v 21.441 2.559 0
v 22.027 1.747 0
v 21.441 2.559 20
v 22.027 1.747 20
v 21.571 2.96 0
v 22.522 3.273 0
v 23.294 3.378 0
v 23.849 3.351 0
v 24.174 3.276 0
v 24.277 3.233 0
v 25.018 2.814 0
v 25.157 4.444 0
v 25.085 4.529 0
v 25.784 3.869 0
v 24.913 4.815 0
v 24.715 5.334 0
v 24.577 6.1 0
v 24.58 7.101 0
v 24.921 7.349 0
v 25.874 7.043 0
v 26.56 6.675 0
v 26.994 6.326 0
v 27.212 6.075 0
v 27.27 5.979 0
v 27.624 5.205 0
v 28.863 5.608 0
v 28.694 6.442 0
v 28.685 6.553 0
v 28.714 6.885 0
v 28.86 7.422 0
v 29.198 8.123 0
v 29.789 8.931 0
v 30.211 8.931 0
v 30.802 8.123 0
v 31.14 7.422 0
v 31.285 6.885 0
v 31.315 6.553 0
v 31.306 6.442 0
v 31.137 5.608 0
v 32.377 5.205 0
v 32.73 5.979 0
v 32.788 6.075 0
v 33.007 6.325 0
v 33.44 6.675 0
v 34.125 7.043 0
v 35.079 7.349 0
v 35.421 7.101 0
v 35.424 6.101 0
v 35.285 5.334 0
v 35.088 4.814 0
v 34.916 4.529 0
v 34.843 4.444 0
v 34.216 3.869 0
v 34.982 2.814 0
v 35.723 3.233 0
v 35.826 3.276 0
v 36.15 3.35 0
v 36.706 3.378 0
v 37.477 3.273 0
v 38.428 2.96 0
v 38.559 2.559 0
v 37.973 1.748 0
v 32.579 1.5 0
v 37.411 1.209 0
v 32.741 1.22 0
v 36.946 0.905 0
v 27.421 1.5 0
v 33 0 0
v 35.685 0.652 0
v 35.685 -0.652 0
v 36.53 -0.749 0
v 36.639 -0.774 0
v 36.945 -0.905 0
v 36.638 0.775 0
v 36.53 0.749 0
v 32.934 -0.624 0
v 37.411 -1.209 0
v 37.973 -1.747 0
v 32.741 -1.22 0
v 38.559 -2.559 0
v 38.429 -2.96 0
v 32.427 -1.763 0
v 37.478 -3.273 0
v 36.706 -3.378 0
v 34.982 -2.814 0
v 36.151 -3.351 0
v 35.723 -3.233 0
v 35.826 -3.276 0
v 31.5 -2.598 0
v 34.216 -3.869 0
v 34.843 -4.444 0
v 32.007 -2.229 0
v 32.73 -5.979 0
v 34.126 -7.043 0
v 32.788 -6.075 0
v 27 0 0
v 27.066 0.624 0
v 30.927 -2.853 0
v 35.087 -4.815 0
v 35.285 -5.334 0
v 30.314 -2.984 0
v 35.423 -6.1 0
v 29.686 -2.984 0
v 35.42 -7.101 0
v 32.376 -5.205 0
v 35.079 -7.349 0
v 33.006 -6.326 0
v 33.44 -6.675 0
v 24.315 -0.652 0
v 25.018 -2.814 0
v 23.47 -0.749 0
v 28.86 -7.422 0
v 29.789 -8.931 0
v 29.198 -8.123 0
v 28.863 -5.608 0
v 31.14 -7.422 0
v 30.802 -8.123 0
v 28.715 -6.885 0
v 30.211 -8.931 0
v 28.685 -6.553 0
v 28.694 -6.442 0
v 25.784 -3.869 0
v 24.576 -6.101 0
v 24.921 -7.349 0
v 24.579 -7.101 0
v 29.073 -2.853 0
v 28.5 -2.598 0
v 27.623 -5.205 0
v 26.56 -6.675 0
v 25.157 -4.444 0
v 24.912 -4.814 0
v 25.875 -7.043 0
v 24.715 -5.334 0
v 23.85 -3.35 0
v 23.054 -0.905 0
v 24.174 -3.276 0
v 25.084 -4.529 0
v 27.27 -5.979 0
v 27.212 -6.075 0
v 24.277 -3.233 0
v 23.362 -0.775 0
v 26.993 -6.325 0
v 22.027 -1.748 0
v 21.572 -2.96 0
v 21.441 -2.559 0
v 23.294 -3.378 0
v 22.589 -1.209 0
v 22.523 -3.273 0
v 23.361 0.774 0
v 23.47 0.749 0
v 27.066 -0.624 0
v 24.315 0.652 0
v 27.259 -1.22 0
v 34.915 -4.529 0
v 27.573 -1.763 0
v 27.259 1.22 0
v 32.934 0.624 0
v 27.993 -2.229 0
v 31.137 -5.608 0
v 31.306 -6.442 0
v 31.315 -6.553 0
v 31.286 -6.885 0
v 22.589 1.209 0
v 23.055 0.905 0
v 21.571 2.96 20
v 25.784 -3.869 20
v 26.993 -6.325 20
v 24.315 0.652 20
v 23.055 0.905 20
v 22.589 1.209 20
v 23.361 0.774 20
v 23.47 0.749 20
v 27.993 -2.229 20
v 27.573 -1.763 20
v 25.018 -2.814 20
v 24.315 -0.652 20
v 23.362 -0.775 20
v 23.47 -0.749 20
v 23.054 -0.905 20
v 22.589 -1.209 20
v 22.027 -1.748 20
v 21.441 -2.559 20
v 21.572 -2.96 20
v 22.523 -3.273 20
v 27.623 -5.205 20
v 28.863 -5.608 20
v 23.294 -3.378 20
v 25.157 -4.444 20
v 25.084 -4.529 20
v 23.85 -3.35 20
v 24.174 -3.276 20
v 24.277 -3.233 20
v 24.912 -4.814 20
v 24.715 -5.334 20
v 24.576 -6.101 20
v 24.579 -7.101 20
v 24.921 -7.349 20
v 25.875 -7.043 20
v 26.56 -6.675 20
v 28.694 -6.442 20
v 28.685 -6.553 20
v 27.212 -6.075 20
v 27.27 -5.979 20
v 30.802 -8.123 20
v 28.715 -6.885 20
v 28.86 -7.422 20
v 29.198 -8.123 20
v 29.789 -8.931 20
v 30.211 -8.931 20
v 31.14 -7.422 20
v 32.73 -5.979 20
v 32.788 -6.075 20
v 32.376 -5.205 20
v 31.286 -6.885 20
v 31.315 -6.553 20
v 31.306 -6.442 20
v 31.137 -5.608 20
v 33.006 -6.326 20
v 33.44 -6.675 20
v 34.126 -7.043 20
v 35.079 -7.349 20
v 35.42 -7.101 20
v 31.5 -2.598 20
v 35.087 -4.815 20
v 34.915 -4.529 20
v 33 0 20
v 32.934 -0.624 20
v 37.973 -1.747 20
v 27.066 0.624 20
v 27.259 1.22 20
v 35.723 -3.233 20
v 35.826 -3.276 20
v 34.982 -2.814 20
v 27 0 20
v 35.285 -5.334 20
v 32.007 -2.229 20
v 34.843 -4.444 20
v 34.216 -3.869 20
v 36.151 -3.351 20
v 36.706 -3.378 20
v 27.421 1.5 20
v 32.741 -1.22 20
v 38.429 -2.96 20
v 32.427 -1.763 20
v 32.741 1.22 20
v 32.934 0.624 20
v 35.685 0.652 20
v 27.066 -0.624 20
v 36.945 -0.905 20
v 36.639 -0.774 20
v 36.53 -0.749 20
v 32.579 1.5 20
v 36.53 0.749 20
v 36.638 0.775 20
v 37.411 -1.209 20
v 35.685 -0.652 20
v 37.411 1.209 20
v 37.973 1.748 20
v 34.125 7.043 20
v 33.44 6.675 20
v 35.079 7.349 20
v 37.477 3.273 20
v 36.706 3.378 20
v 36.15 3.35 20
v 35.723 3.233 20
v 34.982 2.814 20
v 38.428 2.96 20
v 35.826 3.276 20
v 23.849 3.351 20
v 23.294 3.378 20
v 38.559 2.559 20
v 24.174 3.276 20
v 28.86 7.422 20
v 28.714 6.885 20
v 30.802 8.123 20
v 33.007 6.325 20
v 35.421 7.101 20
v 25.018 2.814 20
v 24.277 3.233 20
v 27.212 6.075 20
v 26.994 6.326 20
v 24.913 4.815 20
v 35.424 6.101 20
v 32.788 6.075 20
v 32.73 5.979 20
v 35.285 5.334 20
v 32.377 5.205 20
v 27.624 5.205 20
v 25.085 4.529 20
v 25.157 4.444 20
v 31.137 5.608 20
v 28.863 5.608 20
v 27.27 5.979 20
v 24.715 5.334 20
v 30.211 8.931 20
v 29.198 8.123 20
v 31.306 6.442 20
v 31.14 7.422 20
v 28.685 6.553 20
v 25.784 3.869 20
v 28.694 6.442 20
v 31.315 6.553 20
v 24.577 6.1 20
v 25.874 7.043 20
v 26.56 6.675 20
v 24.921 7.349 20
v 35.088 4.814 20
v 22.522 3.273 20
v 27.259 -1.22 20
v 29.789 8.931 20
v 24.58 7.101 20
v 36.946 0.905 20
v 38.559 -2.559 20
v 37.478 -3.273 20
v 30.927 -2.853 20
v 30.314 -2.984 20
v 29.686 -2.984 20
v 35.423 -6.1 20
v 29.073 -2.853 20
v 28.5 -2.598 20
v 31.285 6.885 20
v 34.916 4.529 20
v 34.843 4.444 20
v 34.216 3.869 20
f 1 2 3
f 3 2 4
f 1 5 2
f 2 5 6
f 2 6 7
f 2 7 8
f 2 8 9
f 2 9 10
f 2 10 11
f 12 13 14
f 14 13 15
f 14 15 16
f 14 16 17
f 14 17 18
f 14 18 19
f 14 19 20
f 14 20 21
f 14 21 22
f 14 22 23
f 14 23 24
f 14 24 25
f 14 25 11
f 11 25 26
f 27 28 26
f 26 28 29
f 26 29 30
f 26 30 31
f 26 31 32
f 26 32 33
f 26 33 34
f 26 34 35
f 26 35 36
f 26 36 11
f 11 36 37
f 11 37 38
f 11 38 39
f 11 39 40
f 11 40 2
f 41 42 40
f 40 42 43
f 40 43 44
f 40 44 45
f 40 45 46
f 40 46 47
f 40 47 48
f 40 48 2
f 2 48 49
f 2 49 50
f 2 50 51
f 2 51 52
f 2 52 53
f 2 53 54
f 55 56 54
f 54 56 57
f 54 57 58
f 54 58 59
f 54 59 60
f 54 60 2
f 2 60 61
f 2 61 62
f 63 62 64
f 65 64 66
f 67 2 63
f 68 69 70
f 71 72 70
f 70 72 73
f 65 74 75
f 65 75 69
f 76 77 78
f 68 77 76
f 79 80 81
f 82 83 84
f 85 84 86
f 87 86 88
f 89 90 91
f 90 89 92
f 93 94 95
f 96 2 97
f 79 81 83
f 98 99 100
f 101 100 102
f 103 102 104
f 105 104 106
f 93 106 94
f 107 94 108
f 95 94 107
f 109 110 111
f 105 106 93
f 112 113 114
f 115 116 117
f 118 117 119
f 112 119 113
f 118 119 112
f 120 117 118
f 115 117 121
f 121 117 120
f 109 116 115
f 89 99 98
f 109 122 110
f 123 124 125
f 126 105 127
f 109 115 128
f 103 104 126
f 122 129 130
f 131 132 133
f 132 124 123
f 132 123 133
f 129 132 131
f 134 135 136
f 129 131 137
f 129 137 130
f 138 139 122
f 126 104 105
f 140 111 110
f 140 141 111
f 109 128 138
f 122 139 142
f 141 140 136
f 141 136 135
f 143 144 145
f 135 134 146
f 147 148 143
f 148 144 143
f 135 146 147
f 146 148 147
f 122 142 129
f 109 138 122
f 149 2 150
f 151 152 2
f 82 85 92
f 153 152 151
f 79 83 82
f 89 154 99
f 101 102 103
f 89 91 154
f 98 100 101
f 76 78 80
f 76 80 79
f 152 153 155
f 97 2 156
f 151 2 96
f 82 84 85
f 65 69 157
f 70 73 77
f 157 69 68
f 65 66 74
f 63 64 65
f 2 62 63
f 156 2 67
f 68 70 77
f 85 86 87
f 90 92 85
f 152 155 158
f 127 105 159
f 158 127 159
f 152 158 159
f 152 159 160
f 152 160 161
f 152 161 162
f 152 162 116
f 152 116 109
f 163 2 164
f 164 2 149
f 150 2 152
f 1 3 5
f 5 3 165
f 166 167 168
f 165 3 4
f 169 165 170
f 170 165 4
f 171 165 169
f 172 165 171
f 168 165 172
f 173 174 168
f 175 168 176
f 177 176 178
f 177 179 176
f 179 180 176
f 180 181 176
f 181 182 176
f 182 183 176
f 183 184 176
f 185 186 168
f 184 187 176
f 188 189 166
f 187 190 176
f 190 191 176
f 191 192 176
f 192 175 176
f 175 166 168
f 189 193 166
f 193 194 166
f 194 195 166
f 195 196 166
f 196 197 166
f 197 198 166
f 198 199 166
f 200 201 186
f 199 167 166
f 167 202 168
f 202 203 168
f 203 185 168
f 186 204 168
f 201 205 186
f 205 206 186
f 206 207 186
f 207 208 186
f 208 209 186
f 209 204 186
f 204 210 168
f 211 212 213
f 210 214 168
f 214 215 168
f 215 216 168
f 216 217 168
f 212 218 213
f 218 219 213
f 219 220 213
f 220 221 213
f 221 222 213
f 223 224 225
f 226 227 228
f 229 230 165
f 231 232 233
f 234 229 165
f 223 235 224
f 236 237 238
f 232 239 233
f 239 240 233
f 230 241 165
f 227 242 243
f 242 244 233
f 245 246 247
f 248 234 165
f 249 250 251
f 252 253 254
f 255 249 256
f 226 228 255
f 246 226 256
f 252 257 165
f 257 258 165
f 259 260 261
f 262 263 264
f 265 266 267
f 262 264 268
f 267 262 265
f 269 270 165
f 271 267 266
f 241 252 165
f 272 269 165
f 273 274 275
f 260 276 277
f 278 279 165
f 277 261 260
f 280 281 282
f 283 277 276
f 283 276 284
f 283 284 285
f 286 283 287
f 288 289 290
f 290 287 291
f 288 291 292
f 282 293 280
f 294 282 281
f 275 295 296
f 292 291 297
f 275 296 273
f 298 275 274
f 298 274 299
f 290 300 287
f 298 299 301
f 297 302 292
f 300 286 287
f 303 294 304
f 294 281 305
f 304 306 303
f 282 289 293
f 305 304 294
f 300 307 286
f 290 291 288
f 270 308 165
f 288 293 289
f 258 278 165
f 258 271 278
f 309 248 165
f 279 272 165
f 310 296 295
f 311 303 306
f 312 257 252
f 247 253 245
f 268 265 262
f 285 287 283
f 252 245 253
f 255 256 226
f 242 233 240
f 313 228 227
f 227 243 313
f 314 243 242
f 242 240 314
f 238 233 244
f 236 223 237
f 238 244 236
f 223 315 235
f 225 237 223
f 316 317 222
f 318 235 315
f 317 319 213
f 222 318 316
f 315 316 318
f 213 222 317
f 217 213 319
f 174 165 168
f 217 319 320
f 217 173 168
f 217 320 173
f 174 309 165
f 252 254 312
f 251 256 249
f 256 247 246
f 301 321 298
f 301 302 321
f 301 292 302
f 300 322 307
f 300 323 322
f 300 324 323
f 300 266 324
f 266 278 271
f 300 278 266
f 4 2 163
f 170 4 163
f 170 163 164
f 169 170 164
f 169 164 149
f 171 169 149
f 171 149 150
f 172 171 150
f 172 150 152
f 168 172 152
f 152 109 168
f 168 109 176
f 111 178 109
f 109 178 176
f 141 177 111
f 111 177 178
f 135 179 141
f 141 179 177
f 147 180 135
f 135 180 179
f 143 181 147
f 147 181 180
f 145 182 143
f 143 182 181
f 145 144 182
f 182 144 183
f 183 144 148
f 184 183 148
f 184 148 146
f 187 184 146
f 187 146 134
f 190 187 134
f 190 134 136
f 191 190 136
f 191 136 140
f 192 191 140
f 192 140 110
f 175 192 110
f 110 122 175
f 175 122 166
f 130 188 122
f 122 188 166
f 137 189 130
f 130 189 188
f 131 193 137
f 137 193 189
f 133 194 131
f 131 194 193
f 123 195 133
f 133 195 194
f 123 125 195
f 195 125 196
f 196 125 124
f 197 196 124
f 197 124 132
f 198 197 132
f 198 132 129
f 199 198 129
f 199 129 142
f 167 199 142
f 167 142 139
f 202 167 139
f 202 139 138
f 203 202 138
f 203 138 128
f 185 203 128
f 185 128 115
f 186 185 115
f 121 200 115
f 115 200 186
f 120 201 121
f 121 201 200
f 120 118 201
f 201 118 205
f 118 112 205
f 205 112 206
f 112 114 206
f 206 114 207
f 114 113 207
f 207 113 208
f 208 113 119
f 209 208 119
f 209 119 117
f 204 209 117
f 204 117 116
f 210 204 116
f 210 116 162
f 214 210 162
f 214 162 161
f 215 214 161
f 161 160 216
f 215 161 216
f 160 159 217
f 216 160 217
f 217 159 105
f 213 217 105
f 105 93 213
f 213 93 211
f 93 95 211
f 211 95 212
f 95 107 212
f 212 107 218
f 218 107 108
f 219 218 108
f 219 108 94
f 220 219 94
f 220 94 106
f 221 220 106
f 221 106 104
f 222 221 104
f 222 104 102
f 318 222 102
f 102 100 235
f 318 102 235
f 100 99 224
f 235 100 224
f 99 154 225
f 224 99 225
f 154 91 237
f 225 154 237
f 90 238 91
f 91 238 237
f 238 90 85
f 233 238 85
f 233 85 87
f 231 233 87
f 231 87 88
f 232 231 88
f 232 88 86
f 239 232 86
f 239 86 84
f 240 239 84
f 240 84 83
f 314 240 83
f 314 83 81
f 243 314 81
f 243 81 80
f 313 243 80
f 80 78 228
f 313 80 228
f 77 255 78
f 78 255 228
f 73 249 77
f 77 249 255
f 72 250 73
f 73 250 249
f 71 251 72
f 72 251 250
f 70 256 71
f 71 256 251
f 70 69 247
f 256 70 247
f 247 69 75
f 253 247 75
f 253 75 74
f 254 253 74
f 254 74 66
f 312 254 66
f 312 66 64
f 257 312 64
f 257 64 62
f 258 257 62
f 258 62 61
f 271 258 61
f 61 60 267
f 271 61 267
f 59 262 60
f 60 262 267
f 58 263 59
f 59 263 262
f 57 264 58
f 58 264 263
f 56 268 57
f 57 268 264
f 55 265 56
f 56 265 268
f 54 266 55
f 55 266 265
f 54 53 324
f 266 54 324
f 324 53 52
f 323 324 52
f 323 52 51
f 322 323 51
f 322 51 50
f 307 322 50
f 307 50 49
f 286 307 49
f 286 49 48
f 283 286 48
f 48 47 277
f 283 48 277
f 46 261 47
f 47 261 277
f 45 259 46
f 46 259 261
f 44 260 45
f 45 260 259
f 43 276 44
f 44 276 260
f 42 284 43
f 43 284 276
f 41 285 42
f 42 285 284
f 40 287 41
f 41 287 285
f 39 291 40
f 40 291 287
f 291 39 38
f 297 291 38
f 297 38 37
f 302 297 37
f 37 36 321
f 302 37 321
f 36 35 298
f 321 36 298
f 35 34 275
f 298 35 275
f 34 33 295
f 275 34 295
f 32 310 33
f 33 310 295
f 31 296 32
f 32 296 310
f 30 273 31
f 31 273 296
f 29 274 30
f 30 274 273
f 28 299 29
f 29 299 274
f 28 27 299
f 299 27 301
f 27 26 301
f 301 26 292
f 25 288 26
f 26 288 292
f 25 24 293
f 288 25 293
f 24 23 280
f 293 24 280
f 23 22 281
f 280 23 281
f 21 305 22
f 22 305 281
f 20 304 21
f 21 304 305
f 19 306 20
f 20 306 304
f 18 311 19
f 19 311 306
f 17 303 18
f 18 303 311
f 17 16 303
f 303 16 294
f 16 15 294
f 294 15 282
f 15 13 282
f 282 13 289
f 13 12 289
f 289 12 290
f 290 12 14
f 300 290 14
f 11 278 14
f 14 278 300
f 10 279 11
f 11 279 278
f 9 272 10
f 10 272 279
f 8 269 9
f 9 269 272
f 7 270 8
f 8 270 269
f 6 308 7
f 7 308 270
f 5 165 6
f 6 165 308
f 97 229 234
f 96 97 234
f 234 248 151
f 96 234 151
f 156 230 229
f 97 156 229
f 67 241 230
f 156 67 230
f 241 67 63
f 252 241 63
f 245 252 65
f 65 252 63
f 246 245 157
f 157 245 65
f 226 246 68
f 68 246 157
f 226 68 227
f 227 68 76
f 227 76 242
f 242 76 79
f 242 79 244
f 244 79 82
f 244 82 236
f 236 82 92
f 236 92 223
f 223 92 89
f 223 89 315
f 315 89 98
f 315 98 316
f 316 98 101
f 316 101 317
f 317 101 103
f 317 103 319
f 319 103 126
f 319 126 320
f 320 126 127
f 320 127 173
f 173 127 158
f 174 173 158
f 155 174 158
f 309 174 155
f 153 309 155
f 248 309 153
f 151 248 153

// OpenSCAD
// PRUSA iteration3
// NEMA 17 extruder small gear
// GNU GPL v3
// Josef Průša <iam@josefprusa.cz> and contributors
// http://www.reprap.org/wiki/Prusa_Mendel
// http://prusamendel.org


include <inc/external_gear_script.scad>;

module small_gear()
{
	translate([0,0,0])
	{

		translate ([30,0,0])
		difference(){
			rotate ([0,0,360*-1/20]) gear (number_of_teeth=10,
			circular_pitch=268,
			gear_thickness = 9,
			rim_thickness = 20,
			hub_thickness = 0,
			hub_diameter = 18,
			bore_diameter = 0,
			circles=0);


			difference(){ 
				translate ([0,0,-1]) cylinder(r=6/2, h=25, $fn=30);
				translate ([-5,1.5,0])cube([10,10,30]);
			}
		}
	}
}

small_gear();
